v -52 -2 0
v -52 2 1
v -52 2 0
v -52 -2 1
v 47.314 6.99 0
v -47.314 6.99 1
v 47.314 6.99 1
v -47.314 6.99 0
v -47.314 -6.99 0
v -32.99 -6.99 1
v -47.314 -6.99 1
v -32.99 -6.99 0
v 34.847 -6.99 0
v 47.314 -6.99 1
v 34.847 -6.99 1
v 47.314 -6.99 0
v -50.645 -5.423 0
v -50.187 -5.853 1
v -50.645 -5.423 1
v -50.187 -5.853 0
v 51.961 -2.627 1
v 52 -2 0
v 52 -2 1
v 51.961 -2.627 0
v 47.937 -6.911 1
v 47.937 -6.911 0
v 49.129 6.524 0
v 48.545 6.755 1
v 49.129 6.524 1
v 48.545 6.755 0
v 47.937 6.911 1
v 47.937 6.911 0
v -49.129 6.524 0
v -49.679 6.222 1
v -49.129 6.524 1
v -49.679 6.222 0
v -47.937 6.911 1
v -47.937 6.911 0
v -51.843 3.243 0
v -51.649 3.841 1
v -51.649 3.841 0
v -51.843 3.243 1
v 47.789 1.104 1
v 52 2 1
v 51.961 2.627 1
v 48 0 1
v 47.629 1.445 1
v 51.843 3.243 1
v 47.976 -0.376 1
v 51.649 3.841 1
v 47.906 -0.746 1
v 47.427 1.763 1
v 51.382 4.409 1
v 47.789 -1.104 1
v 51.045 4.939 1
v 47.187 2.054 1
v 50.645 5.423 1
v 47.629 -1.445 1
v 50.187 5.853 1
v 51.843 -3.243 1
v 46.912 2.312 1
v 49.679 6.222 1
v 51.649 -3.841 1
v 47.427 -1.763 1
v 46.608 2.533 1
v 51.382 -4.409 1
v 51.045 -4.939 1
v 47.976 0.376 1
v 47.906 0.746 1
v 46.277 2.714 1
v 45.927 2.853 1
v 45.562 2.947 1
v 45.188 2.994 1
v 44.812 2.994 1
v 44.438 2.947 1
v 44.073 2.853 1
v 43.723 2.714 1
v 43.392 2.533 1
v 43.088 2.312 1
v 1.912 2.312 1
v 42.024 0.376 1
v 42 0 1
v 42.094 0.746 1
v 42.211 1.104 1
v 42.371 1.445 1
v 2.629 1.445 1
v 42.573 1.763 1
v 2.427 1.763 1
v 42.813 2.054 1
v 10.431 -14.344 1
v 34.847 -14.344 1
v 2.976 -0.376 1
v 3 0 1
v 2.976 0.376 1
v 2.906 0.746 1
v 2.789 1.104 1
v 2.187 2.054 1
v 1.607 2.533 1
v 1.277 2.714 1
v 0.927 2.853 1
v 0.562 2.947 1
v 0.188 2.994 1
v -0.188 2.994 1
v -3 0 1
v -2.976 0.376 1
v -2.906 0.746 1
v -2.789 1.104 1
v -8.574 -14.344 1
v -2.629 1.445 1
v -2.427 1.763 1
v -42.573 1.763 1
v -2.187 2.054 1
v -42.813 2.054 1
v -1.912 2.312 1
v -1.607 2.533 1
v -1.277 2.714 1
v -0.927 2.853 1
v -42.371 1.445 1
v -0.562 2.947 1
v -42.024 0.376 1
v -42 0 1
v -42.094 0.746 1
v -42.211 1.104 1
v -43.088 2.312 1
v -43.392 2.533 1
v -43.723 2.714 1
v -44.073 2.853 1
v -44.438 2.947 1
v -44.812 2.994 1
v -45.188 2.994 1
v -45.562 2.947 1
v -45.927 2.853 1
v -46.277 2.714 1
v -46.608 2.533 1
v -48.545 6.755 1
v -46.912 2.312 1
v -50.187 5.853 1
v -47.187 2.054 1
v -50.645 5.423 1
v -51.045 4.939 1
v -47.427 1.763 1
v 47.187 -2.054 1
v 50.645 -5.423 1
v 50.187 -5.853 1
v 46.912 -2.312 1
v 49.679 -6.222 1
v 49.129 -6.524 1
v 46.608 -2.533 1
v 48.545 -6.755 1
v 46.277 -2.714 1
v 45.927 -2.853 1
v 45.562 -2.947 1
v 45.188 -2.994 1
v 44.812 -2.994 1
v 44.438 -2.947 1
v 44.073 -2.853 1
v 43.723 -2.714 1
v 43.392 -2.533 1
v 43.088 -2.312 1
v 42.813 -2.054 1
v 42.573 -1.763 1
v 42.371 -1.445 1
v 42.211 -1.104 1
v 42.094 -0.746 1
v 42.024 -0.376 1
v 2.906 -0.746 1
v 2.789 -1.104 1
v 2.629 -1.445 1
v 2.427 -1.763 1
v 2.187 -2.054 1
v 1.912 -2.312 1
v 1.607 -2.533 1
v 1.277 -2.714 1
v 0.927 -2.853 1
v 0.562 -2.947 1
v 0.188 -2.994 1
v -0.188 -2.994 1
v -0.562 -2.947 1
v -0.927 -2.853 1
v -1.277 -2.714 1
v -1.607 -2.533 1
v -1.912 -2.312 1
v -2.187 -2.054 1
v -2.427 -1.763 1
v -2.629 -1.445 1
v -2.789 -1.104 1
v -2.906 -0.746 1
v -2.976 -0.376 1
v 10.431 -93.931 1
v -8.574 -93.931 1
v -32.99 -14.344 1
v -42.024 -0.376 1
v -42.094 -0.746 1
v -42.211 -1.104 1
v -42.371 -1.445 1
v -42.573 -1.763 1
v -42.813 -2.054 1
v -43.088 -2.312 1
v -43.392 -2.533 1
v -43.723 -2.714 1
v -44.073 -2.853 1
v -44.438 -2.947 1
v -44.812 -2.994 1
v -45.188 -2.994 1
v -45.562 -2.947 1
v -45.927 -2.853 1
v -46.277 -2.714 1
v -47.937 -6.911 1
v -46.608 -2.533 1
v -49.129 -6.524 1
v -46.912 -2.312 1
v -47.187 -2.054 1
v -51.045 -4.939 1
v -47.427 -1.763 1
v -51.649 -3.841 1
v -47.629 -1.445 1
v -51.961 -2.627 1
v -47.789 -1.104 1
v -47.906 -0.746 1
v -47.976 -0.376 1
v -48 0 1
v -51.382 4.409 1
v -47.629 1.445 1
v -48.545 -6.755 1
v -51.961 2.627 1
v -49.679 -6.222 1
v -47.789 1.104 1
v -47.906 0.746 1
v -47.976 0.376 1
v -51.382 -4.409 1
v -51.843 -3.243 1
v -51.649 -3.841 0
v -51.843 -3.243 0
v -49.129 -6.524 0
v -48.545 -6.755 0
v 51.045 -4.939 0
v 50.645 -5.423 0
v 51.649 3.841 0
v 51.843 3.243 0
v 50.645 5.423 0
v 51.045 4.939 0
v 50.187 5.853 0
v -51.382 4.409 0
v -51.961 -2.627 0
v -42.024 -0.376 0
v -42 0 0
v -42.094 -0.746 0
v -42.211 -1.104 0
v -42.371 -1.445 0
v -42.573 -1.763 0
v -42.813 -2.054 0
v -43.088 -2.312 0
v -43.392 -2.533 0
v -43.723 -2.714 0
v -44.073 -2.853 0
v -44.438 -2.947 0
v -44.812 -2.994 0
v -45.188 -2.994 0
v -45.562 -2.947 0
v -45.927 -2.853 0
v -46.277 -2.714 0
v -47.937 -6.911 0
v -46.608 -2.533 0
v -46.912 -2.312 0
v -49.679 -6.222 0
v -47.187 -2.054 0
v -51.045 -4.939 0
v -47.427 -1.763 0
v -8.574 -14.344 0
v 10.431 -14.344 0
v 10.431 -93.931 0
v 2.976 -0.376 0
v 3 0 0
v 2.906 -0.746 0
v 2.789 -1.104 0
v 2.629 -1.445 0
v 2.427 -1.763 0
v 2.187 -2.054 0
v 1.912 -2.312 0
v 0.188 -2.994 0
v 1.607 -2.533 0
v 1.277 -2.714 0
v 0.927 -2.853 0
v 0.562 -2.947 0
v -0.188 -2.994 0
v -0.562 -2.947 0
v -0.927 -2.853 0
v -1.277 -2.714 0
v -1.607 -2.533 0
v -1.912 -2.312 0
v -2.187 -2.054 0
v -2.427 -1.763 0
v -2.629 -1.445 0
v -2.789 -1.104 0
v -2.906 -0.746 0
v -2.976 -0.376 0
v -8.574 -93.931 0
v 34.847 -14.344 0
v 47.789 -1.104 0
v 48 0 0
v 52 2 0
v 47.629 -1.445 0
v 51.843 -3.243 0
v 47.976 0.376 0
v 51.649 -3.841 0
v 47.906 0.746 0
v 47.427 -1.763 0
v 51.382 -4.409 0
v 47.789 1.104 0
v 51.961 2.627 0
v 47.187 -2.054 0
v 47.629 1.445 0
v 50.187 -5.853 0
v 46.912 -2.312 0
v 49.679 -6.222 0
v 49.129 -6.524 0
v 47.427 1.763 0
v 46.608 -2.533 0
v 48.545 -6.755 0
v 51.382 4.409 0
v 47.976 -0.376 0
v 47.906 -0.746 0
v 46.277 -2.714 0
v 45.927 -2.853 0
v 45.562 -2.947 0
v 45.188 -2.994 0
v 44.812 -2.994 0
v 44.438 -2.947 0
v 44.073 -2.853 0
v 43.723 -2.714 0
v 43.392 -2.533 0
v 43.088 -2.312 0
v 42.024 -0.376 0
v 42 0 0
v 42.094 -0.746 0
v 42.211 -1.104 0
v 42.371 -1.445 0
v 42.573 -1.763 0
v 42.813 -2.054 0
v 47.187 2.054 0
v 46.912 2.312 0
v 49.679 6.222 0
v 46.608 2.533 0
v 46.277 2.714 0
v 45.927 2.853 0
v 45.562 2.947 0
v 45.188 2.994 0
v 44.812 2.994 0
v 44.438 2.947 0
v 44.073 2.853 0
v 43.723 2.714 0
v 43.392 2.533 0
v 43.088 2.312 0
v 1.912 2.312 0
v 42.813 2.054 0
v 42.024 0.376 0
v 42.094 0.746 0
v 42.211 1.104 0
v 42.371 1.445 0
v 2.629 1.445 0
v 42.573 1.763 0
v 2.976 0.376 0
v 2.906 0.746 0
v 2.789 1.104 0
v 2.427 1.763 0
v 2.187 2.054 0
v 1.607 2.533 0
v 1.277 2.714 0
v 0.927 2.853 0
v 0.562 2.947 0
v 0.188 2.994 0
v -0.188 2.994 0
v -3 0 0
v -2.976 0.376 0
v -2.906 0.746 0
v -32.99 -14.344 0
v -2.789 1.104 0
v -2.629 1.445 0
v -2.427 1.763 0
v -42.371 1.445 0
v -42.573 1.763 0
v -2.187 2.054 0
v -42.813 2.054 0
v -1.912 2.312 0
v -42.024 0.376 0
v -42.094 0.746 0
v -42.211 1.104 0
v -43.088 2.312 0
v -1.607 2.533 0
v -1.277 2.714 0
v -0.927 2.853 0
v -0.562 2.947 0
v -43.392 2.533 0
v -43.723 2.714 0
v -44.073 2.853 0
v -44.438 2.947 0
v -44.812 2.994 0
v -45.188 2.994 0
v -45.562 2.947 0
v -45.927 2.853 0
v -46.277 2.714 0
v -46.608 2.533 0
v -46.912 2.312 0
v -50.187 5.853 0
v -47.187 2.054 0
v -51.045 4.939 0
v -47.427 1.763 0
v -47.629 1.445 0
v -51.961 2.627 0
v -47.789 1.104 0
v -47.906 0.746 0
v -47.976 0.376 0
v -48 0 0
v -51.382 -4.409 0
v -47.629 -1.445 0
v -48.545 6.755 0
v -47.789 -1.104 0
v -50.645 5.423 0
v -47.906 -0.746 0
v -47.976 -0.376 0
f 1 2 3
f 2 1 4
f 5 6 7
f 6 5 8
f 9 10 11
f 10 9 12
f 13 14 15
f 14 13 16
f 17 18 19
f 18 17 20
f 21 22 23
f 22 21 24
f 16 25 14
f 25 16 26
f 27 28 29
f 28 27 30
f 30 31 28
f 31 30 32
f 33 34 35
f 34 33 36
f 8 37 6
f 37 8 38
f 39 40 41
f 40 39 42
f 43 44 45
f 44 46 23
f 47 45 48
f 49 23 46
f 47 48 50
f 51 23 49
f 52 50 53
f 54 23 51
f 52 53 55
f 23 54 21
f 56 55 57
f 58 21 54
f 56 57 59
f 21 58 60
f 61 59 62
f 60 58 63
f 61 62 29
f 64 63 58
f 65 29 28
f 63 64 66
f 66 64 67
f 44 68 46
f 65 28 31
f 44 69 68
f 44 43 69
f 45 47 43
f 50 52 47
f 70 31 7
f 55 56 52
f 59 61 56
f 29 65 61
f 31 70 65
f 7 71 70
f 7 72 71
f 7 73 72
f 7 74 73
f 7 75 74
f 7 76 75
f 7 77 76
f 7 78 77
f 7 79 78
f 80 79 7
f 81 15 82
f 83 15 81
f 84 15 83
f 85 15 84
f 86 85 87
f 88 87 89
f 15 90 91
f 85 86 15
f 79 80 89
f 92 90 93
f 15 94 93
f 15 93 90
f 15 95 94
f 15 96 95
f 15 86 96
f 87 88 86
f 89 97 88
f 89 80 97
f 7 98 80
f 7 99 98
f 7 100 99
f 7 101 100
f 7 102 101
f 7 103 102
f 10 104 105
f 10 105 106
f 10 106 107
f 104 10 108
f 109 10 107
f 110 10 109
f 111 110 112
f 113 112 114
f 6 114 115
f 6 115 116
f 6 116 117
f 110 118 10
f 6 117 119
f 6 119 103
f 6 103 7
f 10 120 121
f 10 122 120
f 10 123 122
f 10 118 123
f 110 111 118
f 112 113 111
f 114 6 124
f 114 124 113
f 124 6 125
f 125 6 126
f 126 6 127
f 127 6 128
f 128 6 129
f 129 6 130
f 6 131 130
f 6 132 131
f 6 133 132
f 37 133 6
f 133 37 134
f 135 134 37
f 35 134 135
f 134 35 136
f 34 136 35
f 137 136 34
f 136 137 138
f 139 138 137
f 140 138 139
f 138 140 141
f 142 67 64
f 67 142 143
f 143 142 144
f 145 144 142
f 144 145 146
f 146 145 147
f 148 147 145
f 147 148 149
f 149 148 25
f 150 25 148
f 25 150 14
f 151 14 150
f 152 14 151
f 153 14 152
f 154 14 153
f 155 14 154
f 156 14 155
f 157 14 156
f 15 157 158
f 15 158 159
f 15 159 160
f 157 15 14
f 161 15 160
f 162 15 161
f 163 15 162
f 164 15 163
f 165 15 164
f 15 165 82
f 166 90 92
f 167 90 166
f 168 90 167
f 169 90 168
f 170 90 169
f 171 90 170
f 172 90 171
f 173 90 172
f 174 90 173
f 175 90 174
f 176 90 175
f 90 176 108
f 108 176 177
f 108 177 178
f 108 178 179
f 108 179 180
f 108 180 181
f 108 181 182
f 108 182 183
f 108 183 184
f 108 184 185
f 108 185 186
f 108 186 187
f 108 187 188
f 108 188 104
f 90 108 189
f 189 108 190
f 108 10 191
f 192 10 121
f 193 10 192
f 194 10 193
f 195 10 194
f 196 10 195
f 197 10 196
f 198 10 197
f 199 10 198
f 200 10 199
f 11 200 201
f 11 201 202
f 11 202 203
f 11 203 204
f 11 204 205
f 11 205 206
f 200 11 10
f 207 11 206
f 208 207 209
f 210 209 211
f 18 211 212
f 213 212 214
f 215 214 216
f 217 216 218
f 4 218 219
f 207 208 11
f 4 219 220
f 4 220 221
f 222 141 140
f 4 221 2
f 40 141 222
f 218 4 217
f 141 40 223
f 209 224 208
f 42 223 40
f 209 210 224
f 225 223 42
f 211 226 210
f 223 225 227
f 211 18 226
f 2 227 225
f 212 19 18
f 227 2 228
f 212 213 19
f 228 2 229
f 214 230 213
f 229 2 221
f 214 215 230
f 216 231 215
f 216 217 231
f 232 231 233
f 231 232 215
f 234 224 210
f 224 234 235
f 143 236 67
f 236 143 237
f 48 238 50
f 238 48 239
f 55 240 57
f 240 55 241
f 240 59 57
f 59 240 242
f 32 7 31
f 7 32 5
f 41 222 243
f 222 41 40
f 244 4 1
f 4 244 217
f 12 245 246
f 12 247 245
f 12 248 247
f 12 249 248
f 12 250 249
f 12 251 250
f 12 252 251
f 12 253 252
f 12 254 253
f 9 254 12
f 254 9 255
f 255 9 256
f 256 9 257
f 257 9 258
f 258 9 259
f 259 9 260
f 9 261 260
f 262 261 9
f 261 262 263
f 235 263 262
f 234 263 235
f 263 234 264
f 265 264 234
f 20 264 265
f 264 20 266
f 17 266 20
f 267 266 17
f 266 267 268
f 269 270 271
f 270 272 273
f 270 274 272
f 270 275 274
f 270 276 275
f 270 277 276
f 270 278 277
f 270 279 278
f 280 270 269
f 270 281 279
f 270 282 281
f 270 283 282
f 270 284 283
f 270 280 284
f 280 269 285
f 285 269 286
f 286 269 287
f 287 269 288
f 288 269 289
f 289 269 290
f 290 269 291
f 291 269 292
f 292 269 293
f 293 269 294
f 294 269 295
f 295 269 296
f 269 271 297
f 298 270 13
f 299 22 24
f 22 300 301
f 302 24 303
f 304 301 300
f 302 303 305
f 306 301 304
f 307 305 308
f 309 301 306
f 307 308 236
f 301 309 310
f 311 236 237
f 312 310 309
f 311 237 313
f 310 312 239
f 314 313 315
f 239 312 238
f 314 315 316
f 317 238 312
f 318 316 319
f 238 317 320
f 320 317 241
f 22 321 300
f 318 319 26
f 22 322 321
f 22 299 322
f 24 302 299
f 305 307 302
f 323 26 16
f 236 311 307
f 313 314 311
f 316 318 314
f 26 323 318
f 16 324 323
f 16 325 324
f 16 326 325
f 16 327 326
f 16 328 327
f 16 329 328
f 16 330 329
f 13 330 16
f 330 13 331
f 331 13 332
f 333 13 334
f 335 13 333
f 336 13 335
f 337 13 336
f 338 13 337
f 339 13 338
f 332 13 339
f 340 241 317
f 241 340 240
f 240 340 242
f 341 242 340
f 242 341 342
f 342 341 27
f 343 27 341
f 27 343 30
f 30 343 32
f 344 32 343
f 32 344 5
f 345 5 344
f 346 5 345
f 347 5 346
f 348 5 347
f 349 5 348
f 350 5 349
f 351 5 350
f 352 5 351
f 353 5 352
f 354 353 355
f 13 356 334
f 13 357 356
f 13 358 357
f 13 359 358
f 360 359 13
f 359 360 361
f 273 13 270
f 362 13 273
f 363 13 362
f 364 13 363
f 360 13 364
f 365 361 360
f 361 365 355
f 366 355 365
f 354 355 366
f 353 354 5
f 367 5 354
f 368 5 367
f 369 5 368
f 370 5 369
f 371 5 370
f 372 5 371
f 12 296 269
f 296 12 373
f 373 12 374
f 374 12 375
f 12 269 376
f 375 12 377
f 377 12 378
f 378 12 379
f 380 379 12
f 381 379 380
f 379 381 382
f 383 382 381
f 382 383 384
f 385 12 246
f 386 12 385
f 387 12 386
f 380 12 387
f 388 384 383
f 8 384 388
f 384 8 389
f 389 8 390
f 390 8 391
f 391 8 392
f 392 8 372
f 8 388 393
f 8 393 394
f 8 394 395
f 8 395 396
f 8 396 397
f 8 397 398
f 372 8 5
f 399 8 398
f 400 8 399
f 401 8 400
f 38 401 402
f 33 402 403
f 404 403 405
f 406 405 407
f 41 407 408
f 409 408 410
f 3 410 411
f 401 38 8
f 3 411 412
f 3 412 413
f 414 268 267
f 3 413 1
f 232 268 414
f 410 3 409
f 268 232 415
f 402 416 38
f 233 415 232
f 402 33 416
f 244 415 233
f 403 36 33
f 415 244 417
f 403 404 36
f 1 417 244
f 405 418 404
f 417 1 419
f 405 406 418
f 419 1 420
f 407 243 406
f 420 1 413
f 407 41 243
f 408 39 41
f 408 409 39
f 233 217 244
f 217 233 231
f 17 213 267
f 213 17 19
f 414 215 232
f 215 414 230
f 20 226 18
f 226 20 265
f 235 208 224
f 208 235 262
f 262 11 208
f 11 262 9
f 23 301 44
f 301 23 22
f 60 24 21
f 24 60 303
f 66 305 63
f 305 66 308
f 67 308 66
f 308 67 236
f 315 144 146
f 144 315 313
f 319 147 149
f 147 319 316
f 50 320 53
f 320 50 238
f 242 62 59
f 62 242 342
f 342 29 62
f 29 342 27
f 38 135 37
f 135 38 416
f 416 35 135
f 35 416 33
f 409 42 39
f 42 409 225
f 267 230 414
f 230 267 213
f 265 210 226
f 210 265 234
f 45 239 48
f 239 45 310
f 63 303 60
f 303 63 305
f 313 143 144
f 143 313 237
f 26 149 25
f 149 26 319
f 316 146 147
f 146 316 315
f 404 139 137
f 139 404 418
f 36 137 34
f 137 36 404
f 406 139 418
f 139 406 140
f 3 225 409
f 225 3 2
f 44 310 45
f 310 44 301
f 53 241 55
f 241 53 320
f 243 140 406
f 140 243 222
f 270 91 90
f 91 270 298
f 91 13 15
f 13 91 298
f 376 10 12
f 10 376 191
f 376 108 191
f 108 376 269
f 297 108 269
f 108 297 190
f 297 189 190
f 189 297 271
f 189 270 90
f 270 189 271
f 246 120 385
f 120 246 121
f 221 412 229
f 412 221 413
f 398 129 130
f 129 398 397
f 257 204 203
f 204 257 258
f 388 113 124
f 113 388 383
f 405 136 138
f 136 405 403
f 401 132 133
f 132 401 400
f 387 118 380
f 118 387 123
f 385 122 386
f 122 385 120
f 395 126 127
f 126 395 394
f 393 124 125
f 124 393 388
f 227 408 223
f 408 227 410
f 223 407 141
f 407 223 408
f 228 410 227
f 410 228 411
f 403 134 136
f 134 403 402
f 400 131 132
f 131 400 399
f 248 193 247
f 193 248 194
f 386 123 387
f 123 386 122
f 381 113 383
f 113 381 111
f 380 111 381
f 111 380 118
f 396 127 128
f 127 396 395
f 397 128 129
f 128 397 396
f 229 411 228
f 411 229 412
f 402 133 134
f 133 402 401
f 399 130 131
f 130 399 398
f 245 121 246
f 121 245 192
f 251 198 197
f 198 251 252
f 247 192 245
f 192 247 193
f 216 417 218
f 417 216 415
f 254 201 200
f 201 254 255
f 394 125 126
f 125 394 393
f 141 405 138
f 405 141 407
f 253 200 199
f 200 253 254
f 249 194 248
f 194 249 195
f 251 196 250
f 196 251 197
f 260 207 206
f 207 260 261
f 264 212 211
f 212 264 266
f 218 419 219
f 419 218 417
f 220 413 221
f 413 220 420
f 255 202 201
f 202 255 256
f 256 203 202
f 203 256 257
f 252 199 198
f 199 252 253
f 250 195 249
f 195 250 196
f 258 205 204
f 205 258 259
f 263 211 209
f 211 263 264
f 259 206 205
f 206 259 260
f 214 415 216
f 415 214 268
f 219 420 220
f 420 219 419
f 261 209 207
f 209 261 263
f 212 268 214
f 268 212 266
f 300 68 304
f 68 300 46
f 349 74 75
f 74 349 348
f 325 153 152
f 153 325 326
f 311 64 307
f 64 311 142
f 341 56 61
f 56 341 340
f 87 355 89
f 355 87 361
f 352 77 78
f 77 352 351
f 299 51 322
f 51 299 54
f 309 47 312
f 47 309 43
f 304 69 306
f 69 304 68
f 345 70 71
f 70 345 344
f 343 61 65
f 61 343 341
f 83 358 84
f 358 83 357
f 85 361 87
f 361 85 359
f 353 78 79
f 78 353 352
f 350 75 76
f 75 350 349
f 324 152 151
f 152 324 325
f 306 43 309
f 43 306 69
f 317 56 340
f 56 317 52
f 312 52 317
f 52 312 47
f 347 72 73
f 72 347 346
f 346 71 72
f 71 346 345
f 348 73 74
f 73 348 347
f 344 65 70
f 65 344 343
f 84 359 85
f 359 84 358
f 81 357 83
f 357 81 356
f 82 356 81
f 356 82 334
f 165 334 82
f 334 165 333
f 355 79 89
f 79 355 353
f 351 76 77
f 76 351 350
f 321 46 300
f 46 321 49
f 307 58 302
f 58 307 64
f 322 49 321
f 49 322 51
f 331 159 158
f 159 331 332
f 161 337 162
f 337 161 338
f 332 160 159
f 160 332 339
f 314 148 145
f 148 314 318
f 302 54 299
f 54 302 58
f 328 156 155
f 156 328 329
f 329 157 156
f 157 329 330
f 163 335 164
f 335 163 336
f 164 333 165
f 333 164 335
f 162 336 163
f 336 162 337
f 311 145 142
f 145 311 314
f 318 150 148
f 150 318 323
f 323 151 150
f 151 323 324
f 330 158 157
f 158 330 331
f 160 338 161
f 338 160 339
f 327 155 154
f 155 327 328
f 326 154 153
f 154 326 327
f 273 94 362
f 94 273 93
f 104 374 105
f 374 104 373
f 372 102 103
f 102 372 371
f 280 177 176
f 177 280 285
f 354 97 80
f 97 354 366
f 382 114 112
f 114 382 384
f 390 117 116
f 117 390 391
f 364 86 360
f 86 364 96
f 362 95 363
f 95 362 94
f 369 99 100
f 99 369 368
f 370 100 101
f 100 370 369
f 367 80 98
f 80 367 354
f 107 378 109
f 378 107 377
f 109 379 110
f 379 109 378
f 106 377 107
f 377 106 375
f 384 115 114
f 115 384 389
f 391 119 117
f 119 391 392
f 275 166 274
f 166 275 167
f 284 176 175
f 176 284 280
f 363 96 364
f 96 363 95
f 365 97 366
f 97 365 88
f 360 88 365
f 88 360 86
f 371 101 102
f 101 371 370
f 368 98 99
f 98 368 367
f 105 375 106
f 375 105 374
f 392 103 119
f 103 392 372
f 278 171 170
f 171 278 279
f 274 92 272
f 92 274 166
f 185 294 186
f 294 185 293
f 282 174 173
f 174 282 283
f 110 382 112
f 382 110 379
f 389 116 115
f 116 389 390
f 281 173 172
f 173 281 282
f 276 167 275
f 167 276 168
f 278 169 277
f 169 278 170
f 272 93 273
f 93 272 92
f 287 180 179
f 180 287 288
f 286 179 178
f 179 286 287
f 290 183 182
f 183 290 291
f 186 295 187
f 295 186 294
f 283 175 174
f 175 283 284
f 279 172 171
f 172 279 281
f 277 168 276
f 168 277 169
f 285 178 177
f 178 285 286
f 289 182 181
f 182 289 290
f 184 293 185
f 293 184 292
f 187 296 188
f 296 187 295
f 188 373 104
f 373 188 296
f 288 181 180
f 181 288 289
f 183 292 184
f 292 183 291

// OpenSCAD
$fn = 50;


difference() {
	union() {
		translate(v = [0, 0, 0]) {
			rotate(a = [0, 0, 0]) {
				hull() {
					translate(v = [-47.0000000000, 2.0000000000, 0]) {
						rotate(a = [0, 0, 0]) {
							translate(v = [0, 0, 0]) {
								rotate(a = [0, 0, 0]) {
									cylinder(h = 1, r = 5);
								}
							}
						}
					}
					translate(v = [47.0000000000, 2.0000000000, 0]) {
						rotate(a = [0, 0, 0]) {
							translate(v = [0, 0, 0]) {
								rotate(a = [0, 0, 0]) {
									cylinder(h = 1, r = 5);
								}
							}
						}
					}
					translate(v = [-47.0000000000, -2.0000000000, 0]) {
						rotate(a = [0, 0, 0]) {
							translate(v = [0, 0, 0]) {
								rotate(a = [0, 0, 0]) {
									cylinder(h = 1, r = 5);
								}
							}
						}
					}
					translate(v = [47.0000000000, -2.0000000000, 0]) {
						rotate(a = [0, 0, 0]) {
							translate(v = [0, 0, 0]) {
								rotate(a = [0, 0, 0]) {
									cylinder(h = 1, r = 5);
								}
							}
						}
					}
				}
			}
		}
		translate(v = [0, 0, 0]) {
			rotate(a = [0, 0, 0]) {
				linear_extrude(height = 1) {
					text(font = "DejaVu Sans Mono:style=Bold", halign = "center", size = 95.0000000000, text = "T", valign = "top");
				}
			}
		}
	}
	union() {
		translate(v = [-45.0000000000, 0.0000000000, -125.0000000000]) {
			rotate(a = [0, 0, 0]) {
				cylinder(h = 250, r = 3.0000000000);
			}
		}
		translate(v = [45.0000000000, 0.0000000000, -125.0000000000]) {
			rotate(a = [0, 0, 0]) {
				cylinder(h = 250, r = 3.0000000000);
			}
		}
		translate(v = [45.0000000000, 0.0000000000, -125.0000000000]) {
			rotate(a = [0, 0, 0]) {
				cylinder(h = 250, r = 3.0000000000);
			}
		}
		translate(v = [0, 0, -125.0000000000]) {
			rotate(a = [0, 0, 0]) {
				cylinder(h = 250, r = 3.0000000000);
			}
		}
	}
}
